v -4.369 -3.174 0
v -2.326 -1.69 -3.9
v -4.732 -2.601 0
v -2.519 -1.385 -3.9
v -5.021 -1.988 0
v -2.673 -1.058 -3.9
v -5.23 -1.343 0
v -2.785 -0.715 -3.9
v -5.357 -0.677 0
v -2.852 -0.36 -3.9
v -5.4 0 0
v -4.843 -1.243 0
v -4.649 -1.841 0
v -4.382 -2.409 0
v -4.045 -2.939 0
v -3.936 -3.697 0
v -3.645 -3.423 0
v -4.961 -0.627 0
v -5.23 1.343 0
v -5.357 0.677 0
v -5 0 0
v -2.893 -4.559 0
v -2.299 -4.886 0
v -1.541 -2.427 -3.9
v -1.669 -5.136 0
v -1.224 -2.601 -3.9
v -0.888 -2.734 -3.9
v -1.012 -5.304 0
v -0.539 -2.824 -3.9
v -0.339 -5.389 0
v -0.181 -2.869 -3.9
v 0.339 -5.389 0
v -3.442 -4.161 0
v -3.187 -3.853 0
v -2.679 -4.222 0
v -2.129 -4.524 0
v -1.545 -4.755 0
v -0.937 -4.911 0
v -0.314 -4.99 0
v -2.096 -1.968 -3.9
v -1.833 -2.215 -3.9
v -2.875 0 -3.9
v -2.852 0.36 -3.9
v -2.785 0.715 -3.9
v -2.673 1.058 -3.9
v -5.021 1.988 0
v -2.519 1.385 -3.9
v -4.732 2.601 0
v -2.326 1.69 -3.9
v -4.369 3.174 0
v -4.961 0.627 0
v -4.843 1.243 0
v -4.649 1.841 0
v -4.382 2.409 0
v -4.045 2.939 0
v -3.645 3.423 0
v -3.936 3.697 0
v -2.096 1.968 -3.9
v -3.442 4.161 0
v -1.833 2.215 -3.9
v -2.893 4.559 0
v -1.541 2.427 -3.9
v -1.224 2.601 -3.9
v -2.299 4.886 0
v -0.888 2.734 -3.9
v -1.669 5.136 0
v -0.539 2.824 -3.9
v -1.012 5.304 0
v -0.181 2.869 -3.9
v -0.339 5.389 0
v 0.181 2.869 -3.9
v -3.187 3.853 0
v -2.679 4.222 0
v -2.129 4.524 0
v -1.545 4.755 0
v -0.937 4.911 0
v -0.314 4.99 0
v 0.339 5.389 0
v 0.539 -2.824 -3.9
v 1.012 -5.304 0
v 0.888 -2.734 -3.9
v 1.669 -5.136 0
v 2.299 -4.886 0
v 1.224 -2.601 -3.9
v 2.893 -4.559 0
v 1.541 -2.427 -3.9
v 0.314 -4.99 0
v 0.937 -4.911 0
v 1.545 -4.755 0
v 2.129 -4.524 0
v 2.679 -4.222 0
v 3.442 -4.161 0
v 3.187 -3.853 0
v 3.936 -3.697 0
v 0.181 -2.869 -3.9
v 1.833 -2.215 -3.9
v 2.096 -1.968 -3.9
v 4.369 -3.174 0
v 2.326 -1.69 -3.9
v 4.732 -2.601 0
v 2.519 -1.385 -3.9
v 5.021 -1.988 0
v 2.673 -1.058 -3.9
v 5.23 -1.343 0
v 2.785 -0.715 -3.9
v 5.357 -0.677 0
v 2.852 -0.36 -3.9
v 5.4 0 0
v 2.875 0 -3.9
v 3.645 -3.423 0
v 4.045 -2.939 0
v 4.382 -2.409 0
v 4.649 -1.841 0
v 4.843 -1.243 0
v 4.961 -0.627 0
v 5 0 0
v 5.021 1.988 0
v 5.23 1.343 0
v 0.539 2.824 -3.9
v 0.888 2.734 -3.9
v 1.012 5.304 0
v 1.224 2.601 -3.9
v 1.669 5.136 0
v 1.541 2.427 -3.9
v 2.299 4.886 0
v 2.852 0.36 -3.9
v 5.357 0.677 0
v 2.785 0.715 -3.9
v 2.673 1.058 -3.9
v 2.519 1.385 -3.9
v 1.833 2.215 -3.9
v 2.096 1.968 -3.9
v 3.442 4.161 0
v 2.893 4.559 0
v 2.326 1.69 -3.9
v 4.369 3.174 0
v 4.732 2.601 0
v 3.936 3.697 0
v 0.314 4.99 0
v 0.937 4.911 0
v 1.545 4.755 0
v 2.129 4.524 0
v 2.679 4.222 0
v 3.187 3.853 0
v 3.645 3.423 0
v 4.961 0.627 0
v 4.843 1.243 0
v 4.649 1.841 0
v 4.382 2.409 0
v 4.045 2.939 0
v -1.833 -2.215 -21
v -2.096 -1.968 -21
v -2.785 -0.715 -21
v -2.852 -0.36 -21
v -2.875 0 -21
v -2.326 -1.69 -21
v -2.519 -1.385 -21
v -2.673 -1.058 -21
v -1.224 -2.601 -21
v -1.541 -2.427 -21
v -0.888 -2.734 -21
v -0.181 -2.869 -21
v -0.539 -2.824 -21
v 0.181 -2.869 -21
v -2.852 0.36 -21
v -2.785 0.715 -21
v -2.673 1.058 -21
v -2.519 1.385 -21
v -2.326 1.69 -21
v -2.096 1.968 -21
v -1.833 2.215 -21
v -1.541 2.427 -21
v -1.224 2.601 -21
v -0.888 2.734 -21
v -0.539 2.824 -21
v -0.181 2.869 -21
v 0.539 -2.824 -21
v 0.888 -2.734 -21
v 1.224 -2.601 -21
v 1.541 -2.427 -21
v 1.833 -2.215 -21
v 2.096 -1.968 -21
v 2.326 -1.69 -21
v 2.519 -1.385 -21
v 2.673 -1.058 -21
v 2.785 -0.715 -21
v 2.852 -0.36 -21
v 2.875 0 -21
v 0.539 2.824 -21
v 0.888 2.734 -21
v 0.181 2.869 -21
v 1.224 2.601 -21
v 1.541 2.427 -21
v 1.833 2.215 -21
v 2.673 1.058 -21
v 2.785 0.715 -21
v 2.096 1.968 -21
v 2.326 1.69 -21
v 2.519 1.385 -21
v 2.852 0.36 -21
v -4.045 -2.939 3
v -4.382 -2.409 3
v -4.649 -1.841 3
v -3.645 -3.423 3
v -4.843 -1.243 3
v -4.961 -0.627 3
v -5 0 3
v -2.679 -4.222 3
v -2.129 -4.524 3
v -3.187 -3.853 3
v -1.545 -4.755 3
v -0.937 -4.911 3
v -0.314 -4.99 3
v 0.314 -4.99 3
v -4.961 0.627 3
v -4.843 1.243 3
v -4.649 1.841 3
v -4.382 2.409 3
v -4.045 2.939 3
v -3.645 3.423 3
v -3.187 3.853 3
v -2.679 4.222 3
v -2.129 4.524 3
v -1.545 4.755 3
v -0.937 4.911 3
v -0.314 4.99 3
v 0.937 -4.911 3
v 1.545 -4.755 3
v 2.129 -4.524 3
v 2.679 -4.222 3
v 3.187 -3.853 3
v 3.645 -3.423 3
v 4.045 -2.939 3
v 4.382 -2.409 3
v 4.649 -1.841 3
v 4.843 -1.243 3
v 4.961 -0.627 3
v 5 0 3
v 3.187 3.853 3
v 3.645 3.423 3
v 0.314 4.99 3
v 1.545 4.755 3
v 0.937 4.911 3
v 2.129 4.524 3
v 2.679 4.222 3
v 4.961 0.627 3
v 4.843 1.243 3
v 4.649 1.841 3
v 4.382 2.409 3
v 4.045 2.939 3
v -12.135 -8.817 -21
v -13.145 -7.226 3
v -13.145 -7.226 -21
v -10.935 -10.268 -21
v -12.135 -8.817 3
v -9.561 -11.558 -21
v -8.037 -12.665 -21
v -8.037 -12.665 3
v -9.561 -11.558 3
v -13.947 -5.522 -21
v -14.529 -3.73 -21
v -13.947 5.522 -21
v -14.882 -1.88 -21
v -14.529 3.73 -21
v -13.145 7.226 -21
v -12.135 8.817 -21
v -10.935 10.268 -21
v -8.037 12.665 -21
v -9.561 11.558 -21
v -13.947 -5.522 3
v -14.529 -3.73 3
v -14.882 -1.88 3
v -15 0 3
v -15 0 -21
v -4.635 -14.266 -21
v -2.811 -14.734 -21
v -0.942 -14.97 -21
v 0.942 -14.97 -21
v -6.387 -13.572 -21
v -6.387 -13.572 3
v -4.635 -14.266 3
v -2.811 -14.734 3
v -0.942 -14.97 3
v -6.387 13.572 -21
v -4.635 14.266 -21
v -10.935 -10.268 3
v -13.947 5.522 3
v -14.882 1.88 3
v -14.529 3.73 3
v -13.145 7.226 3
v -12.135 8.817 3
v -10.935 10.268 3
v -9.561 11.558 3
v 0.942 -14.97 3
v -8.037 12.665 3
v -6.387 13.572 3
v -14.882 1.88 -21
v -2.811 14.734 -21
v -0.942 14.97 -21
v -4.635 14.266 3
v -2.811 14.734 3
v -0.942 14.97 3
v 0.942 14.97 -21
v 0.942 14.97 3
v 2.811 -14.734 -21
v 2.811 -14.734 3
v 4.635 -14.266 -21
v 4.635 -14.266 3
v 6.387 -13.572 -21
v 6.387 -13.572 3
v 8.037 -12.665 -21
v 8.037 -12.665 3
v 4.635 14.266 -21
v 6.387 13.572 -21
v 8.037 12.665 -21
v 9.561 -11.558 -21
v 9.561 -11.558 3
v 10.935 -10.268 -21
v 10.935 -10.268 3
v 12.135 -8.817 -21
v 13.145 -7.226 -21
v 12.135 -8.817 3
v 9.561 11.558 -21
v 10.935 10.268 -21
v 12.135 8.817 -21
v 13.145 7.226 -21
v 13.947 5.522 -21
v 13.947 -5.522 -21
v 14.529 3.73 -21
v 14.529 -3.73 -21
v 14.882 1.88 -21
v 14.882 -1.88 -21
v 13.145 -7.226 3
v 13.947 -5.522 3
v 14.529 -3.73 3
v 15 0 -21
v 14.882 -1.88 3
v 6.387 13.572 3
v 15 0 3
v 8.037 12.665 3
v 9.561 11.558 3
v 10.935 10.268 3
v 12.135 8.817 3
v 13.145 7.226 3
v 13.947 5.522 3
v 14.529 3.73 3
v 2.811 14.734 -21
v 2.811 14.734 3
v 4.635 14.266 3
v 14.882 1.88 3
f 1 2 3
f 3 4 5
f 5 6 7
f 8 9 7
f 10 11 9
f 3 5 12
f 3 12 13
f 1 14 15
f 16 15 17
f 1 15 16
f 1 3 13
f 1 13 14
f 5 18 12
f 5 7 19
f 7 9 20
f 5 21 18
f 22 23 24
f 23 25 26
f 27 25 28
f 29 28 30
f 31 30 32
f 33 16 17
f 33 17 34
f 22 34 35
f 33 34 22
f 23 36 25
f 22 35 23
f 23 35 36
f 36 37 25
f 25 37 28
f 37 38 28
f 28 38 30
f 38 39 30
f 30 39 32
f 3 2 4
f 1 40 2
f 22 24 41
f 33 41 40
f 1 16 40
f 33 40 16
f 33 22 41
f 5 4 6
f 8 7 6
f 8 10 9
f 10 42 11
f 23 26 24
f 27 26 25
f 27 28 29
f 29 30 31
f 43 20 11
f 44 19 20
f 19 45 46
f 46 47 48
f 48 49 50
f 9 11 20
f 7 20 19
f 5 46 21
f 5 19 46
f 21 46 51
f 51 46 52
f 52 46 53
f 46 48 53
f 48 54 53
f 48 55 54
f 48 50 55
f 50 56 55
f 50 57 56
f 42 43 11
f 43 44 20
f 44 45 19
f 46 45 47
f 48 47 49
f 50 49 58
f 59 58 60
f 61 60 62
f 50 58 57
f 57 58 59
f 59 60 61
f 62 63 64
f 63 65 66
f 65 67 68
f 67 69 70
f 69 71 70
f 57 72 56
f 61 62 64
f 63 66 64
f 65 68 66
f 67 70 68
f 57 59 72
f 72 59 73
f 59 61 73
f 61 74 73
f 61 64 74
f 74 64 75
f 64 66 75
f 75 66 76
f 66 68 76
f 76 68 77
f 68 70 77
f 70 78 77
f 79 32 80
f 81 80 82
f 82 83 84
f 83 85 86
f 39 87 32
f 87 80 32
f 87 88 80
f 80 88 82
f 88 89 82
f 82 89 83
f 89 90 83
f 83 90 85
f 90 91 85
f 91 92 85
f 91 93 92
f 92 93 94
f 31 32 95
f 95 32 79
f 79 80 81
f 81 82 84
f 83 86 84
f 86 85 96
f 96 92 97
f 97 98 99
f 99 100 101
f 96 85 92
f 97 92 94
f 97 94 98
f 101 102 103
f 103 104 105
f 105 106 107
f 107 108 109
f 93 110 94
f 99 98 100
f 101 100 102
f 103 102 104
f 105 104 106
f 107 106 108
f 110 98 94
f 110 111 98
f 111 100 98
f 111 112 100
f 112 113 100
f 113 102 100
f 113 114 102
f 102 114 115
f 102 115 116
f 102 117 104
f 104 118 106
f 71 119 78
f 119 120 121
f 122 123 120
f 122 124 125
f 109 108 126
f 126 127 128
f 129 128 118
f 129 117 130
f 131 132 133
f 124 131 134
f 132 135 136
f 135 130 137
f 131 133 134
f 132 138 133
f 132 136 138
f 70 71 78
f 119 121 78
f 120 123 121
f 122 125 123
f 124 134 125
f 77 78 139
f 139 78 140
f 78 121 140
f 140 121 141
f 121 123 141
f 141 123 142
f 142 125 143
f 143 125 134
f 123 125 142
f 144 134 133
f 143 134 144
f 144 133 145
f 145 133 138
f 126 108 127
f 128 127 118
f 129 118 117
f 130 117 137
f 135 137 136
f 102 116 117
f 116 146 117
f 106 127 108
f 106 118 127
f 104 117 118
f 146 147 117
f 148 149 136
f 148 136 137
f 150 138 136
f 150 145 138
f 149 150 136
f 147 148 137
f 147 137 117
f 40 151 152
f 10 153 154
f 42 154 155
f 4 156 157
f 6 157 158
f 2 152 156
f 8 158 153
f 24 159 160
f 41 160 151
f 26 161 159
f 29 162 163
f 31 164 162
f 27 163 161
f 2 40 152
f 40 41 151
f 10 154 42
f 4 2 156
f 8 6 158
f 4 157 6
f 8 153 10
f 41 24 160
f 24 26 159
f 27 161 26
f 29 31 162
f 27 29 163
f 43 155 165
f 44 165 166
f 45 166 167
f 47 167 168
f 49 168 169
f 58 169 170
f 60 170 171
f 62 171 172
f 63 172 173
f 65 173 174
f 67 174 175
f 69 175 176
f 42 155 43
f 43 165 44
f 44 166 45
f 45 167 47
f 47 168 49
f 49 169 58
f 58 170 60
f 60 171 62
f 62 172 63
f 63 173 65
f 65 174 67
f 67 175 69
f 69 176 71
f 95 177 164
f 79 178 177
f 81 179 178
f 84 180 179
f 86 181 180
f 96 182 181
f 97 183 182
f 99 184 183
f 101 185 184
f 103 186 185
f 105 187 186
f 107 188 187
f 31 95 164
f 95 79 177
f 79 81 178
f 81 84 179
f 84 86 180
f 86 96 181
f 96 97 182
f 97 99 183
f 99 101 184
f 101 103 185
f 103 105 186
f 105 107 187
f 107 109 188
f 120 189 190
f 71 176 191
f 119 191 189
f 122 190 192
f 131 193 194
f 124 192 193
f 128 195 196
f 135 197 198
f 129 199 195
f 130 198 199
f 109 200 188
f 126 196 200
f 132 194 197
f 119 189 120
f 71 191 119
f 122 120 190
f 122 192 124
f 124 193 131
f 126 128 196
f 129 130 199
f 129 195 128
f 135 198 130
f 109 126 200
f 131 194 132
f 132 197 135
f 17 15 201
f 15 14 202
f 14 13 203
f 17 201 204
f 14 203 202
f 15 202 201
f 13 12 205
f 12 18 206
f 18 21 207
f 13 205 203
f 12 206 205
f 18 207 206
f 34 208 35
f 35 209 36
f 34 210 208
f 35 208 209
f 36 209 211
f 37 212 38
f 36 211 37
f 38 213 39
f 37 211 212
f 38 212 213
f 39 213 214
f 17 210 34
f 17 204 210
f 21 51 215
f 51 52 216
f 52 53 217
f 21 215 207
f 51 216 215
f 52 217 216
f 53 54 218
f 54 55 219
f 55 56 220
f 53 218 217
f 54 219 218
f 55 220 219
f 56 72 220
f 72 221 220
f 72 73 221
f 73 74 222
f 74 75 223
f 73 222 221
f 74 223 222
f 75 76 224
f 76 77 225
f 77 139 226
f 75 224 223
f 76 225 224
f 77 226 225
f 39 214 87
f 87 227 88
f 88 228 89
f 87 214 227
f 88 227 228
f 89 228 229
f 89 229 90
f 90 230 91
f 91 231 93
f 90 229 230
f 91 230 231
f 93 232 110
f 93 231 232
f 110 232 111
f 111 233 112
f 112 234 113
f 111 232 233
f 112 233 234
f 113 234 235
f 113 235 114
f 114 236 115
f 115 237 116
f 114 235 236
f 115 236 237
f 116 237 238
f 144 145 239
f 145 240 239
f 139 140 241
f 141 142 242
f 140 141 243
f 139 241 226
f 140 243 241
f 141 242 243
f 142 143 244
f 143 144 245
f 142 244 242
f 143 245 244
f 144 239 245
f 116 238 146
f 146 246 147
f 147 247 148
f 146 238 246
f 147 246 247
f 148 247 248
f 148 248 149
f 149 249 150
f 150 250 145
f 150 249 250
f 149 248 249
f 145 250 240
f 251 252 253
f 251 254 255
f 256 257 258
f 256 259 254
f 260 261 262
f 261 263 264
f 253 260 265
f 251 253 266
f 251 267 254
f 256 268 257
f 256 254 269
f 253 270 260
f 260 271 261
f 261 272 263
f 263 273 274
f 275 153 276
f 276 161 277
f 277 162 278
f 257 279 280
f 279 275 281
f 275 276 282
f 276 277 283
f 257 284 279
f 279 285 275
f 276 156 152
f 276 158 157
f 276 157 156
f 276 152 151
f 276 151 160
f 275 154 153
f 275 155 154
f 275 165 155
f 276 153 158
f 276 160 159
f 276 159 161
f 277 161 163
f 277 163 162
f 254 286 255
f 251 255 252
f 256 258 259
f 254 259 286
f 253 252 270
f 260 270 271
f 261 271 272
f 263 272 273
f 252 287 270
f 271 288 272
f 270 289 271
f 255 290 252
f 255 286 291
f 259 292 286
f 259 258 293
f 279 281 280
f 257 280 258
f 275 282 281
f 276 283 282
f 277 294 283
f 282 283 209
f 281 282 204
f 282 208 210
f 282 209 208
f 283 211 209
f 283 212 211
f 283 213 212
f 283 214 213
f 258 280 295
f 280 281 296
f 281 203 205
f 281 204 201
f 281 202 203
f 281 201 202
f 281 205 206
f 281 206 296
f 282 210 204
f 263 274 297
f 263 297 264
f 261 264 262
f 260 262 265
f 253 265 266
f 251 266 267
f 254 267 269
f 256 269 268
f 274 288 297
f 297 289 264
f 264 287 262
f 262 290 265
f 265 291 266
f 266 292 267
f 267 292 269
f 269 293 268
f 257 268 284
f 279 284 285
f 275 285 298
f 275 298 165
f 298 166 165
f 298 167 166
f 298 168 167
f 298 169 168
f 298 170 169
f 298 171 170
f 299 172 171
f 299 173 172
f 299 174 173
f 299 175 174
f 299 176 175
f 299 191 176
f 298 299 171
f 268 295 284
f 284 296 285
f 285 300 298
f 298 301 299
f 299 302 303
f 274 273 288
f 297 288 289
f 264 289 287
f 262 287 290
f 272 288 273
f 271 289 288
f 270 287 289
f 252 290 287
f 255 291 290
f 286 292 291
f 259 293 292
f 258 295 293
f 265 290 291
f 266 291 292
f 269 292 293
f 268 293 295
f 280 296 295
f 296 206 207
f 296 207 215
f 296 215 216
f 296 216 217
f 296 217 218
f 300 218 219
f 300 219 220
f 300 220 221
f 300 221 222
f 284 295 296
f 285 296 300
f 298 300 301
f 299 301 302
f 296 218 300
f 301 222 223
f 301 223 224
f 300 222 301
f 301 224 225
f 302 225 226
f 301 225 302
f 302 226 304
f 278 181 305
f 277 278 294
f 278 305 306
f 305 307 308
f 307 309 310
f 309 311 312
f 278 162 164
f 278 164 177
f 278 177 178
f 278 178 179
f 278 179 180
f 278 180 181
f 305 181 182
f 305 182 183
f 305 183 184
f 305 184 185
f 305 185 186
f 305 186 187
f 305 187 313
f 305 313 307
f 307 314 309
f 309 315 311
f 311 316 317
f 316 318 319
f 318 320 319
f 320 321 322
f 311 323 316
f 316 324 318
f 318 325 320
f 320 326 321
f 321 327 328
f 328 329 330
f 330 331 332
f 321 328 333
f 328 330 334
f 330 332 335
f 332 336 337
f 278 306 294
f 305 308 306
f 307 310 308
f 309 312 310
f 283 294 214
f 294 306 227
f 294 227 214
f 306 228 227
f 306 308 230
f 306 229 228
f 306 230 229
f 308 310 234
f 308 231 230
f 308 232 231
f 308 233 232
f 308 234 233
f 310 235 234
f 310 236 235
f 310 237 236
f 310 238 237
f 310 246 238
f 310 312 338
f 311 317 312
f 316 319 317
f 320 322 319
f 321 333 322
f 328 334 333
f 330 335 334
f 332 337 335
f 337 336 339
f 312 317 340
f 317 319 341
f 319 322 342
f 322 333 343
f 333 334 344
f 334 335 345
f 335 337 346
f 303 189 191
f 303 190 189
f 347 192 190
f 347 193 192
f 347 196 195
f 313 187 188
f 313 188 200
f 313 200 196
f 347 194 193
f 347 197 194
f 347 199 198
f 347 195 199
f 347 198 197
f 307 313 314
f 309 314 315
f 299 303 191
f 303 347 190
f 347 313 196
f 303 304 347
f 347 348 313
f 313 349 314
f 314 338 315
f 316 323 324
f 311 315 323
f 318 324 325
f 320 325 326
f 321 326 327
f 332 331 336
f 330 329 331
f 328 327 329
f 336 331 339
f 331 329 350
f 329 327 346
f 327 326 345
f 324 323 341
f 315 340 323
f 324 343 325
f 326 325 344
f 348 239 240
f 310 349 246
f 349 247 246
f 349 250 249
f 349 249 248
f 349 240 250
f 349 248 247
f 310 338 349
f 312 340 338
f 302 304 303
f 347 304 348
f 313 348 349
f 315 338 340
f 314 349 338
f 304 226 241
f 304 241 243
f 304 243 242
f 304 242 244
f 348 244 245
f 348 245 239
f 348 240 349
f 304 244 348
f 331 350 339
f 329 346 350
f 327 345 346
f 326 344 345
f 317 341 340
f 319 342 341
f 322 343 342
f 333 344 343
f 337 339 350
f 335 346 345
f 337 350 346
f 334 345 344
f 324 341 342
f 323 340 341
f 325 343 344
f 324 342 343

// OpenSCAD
$fn = 50;

difference() {
	union() {
		translate(v = [0, 0, -21.0]) {
			cylinder(h = 24, r = 15.0);
		}
	}
	union() {
		translate(v = [0, 0, 0]) {
			rotate(a = [0, 0, 0]) {
				difference() {
					union() {
						translate(v = [0, 0, -24.0]) {
							cylinder(h = 24, r = 2.6);
						}
						translate(v = [0, 0, -3.9]) {
							cylinder(h = 3.9, r1 = 2.875, r2 = 5.4);
						}
						translate(v = [0, 0, -24.0]) {
							cylinder(h = 24, r = 2.875);
						}
						translate(v = [0, 0, -24.0]) {
							cylinder(h = 24, r = 2.6);
						}
					}
					union();
				}
			}
		}
		#cylinder(h = 3, r = 5.0);
	}
}
